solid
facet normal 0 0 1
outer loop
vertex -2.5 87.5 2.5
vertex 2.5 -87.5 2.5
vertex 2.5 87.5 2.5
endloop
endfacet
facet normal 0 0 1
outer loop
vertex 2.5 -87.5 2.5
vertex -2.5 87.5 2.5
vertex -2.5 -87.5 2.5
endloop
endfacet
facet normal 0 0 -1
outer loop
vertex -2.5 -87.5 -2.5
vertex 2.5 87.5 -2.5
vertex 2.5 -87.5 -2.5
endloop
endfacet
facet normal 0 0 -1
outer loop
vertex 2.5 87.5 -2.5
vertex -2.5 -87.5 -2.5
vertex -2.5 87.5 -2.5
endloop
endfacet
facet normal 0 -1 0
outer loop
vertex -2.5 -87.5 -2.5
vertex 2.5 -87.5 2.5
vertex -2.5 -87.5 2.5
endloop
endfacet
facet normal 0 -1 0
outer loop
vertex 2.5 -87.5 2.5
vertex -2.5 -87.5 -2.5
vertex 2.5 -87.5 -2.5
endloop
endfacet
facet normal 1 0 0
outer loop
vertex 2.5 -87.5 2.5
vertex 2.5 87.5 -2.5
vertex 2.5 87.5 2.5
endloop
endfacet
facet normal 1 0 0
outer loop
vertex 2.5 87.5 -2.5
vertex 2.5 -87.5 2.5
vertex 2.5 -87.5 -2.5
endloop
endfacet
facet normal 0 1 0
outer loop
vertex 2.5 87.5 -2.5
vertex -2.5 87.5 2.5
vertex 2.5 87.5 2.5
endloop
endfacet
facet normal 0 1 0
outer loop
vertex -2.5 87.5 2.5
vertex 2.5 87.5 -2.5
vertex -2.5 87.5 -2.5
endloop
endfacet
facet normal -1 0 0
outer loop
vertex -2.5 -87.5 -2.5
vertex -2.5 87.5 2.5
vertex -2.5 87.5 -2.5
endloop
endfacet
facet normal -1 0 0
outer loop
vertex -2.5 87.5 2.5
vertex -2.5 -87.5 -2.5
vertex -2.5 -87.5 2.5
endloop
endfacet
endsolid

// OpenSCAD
/////////////////////////////////////////////////////////////////////////////////
// Adapter for drilling machine in the embedded lab.
//
// Author:              Maximilian Stiefel
// Last modification:   07.06.2017
/////////////////////////////////////////////////////////////////////////////////

/////////////////////////////////////////////////////////////////////////////////
// Vars
/////////////////////////////////////////////////////////////////////////////////
crossbar_depth = 175;
crossbar_height = 5;
crossbar_width = 5;

/////////////////////////////////////////////////////////////////////////////////
// Action
/////////////////////////////////////////////////////////////////////////////////
cube([crossbar_width, crossbar_depth, crossbar_height], center = true);
